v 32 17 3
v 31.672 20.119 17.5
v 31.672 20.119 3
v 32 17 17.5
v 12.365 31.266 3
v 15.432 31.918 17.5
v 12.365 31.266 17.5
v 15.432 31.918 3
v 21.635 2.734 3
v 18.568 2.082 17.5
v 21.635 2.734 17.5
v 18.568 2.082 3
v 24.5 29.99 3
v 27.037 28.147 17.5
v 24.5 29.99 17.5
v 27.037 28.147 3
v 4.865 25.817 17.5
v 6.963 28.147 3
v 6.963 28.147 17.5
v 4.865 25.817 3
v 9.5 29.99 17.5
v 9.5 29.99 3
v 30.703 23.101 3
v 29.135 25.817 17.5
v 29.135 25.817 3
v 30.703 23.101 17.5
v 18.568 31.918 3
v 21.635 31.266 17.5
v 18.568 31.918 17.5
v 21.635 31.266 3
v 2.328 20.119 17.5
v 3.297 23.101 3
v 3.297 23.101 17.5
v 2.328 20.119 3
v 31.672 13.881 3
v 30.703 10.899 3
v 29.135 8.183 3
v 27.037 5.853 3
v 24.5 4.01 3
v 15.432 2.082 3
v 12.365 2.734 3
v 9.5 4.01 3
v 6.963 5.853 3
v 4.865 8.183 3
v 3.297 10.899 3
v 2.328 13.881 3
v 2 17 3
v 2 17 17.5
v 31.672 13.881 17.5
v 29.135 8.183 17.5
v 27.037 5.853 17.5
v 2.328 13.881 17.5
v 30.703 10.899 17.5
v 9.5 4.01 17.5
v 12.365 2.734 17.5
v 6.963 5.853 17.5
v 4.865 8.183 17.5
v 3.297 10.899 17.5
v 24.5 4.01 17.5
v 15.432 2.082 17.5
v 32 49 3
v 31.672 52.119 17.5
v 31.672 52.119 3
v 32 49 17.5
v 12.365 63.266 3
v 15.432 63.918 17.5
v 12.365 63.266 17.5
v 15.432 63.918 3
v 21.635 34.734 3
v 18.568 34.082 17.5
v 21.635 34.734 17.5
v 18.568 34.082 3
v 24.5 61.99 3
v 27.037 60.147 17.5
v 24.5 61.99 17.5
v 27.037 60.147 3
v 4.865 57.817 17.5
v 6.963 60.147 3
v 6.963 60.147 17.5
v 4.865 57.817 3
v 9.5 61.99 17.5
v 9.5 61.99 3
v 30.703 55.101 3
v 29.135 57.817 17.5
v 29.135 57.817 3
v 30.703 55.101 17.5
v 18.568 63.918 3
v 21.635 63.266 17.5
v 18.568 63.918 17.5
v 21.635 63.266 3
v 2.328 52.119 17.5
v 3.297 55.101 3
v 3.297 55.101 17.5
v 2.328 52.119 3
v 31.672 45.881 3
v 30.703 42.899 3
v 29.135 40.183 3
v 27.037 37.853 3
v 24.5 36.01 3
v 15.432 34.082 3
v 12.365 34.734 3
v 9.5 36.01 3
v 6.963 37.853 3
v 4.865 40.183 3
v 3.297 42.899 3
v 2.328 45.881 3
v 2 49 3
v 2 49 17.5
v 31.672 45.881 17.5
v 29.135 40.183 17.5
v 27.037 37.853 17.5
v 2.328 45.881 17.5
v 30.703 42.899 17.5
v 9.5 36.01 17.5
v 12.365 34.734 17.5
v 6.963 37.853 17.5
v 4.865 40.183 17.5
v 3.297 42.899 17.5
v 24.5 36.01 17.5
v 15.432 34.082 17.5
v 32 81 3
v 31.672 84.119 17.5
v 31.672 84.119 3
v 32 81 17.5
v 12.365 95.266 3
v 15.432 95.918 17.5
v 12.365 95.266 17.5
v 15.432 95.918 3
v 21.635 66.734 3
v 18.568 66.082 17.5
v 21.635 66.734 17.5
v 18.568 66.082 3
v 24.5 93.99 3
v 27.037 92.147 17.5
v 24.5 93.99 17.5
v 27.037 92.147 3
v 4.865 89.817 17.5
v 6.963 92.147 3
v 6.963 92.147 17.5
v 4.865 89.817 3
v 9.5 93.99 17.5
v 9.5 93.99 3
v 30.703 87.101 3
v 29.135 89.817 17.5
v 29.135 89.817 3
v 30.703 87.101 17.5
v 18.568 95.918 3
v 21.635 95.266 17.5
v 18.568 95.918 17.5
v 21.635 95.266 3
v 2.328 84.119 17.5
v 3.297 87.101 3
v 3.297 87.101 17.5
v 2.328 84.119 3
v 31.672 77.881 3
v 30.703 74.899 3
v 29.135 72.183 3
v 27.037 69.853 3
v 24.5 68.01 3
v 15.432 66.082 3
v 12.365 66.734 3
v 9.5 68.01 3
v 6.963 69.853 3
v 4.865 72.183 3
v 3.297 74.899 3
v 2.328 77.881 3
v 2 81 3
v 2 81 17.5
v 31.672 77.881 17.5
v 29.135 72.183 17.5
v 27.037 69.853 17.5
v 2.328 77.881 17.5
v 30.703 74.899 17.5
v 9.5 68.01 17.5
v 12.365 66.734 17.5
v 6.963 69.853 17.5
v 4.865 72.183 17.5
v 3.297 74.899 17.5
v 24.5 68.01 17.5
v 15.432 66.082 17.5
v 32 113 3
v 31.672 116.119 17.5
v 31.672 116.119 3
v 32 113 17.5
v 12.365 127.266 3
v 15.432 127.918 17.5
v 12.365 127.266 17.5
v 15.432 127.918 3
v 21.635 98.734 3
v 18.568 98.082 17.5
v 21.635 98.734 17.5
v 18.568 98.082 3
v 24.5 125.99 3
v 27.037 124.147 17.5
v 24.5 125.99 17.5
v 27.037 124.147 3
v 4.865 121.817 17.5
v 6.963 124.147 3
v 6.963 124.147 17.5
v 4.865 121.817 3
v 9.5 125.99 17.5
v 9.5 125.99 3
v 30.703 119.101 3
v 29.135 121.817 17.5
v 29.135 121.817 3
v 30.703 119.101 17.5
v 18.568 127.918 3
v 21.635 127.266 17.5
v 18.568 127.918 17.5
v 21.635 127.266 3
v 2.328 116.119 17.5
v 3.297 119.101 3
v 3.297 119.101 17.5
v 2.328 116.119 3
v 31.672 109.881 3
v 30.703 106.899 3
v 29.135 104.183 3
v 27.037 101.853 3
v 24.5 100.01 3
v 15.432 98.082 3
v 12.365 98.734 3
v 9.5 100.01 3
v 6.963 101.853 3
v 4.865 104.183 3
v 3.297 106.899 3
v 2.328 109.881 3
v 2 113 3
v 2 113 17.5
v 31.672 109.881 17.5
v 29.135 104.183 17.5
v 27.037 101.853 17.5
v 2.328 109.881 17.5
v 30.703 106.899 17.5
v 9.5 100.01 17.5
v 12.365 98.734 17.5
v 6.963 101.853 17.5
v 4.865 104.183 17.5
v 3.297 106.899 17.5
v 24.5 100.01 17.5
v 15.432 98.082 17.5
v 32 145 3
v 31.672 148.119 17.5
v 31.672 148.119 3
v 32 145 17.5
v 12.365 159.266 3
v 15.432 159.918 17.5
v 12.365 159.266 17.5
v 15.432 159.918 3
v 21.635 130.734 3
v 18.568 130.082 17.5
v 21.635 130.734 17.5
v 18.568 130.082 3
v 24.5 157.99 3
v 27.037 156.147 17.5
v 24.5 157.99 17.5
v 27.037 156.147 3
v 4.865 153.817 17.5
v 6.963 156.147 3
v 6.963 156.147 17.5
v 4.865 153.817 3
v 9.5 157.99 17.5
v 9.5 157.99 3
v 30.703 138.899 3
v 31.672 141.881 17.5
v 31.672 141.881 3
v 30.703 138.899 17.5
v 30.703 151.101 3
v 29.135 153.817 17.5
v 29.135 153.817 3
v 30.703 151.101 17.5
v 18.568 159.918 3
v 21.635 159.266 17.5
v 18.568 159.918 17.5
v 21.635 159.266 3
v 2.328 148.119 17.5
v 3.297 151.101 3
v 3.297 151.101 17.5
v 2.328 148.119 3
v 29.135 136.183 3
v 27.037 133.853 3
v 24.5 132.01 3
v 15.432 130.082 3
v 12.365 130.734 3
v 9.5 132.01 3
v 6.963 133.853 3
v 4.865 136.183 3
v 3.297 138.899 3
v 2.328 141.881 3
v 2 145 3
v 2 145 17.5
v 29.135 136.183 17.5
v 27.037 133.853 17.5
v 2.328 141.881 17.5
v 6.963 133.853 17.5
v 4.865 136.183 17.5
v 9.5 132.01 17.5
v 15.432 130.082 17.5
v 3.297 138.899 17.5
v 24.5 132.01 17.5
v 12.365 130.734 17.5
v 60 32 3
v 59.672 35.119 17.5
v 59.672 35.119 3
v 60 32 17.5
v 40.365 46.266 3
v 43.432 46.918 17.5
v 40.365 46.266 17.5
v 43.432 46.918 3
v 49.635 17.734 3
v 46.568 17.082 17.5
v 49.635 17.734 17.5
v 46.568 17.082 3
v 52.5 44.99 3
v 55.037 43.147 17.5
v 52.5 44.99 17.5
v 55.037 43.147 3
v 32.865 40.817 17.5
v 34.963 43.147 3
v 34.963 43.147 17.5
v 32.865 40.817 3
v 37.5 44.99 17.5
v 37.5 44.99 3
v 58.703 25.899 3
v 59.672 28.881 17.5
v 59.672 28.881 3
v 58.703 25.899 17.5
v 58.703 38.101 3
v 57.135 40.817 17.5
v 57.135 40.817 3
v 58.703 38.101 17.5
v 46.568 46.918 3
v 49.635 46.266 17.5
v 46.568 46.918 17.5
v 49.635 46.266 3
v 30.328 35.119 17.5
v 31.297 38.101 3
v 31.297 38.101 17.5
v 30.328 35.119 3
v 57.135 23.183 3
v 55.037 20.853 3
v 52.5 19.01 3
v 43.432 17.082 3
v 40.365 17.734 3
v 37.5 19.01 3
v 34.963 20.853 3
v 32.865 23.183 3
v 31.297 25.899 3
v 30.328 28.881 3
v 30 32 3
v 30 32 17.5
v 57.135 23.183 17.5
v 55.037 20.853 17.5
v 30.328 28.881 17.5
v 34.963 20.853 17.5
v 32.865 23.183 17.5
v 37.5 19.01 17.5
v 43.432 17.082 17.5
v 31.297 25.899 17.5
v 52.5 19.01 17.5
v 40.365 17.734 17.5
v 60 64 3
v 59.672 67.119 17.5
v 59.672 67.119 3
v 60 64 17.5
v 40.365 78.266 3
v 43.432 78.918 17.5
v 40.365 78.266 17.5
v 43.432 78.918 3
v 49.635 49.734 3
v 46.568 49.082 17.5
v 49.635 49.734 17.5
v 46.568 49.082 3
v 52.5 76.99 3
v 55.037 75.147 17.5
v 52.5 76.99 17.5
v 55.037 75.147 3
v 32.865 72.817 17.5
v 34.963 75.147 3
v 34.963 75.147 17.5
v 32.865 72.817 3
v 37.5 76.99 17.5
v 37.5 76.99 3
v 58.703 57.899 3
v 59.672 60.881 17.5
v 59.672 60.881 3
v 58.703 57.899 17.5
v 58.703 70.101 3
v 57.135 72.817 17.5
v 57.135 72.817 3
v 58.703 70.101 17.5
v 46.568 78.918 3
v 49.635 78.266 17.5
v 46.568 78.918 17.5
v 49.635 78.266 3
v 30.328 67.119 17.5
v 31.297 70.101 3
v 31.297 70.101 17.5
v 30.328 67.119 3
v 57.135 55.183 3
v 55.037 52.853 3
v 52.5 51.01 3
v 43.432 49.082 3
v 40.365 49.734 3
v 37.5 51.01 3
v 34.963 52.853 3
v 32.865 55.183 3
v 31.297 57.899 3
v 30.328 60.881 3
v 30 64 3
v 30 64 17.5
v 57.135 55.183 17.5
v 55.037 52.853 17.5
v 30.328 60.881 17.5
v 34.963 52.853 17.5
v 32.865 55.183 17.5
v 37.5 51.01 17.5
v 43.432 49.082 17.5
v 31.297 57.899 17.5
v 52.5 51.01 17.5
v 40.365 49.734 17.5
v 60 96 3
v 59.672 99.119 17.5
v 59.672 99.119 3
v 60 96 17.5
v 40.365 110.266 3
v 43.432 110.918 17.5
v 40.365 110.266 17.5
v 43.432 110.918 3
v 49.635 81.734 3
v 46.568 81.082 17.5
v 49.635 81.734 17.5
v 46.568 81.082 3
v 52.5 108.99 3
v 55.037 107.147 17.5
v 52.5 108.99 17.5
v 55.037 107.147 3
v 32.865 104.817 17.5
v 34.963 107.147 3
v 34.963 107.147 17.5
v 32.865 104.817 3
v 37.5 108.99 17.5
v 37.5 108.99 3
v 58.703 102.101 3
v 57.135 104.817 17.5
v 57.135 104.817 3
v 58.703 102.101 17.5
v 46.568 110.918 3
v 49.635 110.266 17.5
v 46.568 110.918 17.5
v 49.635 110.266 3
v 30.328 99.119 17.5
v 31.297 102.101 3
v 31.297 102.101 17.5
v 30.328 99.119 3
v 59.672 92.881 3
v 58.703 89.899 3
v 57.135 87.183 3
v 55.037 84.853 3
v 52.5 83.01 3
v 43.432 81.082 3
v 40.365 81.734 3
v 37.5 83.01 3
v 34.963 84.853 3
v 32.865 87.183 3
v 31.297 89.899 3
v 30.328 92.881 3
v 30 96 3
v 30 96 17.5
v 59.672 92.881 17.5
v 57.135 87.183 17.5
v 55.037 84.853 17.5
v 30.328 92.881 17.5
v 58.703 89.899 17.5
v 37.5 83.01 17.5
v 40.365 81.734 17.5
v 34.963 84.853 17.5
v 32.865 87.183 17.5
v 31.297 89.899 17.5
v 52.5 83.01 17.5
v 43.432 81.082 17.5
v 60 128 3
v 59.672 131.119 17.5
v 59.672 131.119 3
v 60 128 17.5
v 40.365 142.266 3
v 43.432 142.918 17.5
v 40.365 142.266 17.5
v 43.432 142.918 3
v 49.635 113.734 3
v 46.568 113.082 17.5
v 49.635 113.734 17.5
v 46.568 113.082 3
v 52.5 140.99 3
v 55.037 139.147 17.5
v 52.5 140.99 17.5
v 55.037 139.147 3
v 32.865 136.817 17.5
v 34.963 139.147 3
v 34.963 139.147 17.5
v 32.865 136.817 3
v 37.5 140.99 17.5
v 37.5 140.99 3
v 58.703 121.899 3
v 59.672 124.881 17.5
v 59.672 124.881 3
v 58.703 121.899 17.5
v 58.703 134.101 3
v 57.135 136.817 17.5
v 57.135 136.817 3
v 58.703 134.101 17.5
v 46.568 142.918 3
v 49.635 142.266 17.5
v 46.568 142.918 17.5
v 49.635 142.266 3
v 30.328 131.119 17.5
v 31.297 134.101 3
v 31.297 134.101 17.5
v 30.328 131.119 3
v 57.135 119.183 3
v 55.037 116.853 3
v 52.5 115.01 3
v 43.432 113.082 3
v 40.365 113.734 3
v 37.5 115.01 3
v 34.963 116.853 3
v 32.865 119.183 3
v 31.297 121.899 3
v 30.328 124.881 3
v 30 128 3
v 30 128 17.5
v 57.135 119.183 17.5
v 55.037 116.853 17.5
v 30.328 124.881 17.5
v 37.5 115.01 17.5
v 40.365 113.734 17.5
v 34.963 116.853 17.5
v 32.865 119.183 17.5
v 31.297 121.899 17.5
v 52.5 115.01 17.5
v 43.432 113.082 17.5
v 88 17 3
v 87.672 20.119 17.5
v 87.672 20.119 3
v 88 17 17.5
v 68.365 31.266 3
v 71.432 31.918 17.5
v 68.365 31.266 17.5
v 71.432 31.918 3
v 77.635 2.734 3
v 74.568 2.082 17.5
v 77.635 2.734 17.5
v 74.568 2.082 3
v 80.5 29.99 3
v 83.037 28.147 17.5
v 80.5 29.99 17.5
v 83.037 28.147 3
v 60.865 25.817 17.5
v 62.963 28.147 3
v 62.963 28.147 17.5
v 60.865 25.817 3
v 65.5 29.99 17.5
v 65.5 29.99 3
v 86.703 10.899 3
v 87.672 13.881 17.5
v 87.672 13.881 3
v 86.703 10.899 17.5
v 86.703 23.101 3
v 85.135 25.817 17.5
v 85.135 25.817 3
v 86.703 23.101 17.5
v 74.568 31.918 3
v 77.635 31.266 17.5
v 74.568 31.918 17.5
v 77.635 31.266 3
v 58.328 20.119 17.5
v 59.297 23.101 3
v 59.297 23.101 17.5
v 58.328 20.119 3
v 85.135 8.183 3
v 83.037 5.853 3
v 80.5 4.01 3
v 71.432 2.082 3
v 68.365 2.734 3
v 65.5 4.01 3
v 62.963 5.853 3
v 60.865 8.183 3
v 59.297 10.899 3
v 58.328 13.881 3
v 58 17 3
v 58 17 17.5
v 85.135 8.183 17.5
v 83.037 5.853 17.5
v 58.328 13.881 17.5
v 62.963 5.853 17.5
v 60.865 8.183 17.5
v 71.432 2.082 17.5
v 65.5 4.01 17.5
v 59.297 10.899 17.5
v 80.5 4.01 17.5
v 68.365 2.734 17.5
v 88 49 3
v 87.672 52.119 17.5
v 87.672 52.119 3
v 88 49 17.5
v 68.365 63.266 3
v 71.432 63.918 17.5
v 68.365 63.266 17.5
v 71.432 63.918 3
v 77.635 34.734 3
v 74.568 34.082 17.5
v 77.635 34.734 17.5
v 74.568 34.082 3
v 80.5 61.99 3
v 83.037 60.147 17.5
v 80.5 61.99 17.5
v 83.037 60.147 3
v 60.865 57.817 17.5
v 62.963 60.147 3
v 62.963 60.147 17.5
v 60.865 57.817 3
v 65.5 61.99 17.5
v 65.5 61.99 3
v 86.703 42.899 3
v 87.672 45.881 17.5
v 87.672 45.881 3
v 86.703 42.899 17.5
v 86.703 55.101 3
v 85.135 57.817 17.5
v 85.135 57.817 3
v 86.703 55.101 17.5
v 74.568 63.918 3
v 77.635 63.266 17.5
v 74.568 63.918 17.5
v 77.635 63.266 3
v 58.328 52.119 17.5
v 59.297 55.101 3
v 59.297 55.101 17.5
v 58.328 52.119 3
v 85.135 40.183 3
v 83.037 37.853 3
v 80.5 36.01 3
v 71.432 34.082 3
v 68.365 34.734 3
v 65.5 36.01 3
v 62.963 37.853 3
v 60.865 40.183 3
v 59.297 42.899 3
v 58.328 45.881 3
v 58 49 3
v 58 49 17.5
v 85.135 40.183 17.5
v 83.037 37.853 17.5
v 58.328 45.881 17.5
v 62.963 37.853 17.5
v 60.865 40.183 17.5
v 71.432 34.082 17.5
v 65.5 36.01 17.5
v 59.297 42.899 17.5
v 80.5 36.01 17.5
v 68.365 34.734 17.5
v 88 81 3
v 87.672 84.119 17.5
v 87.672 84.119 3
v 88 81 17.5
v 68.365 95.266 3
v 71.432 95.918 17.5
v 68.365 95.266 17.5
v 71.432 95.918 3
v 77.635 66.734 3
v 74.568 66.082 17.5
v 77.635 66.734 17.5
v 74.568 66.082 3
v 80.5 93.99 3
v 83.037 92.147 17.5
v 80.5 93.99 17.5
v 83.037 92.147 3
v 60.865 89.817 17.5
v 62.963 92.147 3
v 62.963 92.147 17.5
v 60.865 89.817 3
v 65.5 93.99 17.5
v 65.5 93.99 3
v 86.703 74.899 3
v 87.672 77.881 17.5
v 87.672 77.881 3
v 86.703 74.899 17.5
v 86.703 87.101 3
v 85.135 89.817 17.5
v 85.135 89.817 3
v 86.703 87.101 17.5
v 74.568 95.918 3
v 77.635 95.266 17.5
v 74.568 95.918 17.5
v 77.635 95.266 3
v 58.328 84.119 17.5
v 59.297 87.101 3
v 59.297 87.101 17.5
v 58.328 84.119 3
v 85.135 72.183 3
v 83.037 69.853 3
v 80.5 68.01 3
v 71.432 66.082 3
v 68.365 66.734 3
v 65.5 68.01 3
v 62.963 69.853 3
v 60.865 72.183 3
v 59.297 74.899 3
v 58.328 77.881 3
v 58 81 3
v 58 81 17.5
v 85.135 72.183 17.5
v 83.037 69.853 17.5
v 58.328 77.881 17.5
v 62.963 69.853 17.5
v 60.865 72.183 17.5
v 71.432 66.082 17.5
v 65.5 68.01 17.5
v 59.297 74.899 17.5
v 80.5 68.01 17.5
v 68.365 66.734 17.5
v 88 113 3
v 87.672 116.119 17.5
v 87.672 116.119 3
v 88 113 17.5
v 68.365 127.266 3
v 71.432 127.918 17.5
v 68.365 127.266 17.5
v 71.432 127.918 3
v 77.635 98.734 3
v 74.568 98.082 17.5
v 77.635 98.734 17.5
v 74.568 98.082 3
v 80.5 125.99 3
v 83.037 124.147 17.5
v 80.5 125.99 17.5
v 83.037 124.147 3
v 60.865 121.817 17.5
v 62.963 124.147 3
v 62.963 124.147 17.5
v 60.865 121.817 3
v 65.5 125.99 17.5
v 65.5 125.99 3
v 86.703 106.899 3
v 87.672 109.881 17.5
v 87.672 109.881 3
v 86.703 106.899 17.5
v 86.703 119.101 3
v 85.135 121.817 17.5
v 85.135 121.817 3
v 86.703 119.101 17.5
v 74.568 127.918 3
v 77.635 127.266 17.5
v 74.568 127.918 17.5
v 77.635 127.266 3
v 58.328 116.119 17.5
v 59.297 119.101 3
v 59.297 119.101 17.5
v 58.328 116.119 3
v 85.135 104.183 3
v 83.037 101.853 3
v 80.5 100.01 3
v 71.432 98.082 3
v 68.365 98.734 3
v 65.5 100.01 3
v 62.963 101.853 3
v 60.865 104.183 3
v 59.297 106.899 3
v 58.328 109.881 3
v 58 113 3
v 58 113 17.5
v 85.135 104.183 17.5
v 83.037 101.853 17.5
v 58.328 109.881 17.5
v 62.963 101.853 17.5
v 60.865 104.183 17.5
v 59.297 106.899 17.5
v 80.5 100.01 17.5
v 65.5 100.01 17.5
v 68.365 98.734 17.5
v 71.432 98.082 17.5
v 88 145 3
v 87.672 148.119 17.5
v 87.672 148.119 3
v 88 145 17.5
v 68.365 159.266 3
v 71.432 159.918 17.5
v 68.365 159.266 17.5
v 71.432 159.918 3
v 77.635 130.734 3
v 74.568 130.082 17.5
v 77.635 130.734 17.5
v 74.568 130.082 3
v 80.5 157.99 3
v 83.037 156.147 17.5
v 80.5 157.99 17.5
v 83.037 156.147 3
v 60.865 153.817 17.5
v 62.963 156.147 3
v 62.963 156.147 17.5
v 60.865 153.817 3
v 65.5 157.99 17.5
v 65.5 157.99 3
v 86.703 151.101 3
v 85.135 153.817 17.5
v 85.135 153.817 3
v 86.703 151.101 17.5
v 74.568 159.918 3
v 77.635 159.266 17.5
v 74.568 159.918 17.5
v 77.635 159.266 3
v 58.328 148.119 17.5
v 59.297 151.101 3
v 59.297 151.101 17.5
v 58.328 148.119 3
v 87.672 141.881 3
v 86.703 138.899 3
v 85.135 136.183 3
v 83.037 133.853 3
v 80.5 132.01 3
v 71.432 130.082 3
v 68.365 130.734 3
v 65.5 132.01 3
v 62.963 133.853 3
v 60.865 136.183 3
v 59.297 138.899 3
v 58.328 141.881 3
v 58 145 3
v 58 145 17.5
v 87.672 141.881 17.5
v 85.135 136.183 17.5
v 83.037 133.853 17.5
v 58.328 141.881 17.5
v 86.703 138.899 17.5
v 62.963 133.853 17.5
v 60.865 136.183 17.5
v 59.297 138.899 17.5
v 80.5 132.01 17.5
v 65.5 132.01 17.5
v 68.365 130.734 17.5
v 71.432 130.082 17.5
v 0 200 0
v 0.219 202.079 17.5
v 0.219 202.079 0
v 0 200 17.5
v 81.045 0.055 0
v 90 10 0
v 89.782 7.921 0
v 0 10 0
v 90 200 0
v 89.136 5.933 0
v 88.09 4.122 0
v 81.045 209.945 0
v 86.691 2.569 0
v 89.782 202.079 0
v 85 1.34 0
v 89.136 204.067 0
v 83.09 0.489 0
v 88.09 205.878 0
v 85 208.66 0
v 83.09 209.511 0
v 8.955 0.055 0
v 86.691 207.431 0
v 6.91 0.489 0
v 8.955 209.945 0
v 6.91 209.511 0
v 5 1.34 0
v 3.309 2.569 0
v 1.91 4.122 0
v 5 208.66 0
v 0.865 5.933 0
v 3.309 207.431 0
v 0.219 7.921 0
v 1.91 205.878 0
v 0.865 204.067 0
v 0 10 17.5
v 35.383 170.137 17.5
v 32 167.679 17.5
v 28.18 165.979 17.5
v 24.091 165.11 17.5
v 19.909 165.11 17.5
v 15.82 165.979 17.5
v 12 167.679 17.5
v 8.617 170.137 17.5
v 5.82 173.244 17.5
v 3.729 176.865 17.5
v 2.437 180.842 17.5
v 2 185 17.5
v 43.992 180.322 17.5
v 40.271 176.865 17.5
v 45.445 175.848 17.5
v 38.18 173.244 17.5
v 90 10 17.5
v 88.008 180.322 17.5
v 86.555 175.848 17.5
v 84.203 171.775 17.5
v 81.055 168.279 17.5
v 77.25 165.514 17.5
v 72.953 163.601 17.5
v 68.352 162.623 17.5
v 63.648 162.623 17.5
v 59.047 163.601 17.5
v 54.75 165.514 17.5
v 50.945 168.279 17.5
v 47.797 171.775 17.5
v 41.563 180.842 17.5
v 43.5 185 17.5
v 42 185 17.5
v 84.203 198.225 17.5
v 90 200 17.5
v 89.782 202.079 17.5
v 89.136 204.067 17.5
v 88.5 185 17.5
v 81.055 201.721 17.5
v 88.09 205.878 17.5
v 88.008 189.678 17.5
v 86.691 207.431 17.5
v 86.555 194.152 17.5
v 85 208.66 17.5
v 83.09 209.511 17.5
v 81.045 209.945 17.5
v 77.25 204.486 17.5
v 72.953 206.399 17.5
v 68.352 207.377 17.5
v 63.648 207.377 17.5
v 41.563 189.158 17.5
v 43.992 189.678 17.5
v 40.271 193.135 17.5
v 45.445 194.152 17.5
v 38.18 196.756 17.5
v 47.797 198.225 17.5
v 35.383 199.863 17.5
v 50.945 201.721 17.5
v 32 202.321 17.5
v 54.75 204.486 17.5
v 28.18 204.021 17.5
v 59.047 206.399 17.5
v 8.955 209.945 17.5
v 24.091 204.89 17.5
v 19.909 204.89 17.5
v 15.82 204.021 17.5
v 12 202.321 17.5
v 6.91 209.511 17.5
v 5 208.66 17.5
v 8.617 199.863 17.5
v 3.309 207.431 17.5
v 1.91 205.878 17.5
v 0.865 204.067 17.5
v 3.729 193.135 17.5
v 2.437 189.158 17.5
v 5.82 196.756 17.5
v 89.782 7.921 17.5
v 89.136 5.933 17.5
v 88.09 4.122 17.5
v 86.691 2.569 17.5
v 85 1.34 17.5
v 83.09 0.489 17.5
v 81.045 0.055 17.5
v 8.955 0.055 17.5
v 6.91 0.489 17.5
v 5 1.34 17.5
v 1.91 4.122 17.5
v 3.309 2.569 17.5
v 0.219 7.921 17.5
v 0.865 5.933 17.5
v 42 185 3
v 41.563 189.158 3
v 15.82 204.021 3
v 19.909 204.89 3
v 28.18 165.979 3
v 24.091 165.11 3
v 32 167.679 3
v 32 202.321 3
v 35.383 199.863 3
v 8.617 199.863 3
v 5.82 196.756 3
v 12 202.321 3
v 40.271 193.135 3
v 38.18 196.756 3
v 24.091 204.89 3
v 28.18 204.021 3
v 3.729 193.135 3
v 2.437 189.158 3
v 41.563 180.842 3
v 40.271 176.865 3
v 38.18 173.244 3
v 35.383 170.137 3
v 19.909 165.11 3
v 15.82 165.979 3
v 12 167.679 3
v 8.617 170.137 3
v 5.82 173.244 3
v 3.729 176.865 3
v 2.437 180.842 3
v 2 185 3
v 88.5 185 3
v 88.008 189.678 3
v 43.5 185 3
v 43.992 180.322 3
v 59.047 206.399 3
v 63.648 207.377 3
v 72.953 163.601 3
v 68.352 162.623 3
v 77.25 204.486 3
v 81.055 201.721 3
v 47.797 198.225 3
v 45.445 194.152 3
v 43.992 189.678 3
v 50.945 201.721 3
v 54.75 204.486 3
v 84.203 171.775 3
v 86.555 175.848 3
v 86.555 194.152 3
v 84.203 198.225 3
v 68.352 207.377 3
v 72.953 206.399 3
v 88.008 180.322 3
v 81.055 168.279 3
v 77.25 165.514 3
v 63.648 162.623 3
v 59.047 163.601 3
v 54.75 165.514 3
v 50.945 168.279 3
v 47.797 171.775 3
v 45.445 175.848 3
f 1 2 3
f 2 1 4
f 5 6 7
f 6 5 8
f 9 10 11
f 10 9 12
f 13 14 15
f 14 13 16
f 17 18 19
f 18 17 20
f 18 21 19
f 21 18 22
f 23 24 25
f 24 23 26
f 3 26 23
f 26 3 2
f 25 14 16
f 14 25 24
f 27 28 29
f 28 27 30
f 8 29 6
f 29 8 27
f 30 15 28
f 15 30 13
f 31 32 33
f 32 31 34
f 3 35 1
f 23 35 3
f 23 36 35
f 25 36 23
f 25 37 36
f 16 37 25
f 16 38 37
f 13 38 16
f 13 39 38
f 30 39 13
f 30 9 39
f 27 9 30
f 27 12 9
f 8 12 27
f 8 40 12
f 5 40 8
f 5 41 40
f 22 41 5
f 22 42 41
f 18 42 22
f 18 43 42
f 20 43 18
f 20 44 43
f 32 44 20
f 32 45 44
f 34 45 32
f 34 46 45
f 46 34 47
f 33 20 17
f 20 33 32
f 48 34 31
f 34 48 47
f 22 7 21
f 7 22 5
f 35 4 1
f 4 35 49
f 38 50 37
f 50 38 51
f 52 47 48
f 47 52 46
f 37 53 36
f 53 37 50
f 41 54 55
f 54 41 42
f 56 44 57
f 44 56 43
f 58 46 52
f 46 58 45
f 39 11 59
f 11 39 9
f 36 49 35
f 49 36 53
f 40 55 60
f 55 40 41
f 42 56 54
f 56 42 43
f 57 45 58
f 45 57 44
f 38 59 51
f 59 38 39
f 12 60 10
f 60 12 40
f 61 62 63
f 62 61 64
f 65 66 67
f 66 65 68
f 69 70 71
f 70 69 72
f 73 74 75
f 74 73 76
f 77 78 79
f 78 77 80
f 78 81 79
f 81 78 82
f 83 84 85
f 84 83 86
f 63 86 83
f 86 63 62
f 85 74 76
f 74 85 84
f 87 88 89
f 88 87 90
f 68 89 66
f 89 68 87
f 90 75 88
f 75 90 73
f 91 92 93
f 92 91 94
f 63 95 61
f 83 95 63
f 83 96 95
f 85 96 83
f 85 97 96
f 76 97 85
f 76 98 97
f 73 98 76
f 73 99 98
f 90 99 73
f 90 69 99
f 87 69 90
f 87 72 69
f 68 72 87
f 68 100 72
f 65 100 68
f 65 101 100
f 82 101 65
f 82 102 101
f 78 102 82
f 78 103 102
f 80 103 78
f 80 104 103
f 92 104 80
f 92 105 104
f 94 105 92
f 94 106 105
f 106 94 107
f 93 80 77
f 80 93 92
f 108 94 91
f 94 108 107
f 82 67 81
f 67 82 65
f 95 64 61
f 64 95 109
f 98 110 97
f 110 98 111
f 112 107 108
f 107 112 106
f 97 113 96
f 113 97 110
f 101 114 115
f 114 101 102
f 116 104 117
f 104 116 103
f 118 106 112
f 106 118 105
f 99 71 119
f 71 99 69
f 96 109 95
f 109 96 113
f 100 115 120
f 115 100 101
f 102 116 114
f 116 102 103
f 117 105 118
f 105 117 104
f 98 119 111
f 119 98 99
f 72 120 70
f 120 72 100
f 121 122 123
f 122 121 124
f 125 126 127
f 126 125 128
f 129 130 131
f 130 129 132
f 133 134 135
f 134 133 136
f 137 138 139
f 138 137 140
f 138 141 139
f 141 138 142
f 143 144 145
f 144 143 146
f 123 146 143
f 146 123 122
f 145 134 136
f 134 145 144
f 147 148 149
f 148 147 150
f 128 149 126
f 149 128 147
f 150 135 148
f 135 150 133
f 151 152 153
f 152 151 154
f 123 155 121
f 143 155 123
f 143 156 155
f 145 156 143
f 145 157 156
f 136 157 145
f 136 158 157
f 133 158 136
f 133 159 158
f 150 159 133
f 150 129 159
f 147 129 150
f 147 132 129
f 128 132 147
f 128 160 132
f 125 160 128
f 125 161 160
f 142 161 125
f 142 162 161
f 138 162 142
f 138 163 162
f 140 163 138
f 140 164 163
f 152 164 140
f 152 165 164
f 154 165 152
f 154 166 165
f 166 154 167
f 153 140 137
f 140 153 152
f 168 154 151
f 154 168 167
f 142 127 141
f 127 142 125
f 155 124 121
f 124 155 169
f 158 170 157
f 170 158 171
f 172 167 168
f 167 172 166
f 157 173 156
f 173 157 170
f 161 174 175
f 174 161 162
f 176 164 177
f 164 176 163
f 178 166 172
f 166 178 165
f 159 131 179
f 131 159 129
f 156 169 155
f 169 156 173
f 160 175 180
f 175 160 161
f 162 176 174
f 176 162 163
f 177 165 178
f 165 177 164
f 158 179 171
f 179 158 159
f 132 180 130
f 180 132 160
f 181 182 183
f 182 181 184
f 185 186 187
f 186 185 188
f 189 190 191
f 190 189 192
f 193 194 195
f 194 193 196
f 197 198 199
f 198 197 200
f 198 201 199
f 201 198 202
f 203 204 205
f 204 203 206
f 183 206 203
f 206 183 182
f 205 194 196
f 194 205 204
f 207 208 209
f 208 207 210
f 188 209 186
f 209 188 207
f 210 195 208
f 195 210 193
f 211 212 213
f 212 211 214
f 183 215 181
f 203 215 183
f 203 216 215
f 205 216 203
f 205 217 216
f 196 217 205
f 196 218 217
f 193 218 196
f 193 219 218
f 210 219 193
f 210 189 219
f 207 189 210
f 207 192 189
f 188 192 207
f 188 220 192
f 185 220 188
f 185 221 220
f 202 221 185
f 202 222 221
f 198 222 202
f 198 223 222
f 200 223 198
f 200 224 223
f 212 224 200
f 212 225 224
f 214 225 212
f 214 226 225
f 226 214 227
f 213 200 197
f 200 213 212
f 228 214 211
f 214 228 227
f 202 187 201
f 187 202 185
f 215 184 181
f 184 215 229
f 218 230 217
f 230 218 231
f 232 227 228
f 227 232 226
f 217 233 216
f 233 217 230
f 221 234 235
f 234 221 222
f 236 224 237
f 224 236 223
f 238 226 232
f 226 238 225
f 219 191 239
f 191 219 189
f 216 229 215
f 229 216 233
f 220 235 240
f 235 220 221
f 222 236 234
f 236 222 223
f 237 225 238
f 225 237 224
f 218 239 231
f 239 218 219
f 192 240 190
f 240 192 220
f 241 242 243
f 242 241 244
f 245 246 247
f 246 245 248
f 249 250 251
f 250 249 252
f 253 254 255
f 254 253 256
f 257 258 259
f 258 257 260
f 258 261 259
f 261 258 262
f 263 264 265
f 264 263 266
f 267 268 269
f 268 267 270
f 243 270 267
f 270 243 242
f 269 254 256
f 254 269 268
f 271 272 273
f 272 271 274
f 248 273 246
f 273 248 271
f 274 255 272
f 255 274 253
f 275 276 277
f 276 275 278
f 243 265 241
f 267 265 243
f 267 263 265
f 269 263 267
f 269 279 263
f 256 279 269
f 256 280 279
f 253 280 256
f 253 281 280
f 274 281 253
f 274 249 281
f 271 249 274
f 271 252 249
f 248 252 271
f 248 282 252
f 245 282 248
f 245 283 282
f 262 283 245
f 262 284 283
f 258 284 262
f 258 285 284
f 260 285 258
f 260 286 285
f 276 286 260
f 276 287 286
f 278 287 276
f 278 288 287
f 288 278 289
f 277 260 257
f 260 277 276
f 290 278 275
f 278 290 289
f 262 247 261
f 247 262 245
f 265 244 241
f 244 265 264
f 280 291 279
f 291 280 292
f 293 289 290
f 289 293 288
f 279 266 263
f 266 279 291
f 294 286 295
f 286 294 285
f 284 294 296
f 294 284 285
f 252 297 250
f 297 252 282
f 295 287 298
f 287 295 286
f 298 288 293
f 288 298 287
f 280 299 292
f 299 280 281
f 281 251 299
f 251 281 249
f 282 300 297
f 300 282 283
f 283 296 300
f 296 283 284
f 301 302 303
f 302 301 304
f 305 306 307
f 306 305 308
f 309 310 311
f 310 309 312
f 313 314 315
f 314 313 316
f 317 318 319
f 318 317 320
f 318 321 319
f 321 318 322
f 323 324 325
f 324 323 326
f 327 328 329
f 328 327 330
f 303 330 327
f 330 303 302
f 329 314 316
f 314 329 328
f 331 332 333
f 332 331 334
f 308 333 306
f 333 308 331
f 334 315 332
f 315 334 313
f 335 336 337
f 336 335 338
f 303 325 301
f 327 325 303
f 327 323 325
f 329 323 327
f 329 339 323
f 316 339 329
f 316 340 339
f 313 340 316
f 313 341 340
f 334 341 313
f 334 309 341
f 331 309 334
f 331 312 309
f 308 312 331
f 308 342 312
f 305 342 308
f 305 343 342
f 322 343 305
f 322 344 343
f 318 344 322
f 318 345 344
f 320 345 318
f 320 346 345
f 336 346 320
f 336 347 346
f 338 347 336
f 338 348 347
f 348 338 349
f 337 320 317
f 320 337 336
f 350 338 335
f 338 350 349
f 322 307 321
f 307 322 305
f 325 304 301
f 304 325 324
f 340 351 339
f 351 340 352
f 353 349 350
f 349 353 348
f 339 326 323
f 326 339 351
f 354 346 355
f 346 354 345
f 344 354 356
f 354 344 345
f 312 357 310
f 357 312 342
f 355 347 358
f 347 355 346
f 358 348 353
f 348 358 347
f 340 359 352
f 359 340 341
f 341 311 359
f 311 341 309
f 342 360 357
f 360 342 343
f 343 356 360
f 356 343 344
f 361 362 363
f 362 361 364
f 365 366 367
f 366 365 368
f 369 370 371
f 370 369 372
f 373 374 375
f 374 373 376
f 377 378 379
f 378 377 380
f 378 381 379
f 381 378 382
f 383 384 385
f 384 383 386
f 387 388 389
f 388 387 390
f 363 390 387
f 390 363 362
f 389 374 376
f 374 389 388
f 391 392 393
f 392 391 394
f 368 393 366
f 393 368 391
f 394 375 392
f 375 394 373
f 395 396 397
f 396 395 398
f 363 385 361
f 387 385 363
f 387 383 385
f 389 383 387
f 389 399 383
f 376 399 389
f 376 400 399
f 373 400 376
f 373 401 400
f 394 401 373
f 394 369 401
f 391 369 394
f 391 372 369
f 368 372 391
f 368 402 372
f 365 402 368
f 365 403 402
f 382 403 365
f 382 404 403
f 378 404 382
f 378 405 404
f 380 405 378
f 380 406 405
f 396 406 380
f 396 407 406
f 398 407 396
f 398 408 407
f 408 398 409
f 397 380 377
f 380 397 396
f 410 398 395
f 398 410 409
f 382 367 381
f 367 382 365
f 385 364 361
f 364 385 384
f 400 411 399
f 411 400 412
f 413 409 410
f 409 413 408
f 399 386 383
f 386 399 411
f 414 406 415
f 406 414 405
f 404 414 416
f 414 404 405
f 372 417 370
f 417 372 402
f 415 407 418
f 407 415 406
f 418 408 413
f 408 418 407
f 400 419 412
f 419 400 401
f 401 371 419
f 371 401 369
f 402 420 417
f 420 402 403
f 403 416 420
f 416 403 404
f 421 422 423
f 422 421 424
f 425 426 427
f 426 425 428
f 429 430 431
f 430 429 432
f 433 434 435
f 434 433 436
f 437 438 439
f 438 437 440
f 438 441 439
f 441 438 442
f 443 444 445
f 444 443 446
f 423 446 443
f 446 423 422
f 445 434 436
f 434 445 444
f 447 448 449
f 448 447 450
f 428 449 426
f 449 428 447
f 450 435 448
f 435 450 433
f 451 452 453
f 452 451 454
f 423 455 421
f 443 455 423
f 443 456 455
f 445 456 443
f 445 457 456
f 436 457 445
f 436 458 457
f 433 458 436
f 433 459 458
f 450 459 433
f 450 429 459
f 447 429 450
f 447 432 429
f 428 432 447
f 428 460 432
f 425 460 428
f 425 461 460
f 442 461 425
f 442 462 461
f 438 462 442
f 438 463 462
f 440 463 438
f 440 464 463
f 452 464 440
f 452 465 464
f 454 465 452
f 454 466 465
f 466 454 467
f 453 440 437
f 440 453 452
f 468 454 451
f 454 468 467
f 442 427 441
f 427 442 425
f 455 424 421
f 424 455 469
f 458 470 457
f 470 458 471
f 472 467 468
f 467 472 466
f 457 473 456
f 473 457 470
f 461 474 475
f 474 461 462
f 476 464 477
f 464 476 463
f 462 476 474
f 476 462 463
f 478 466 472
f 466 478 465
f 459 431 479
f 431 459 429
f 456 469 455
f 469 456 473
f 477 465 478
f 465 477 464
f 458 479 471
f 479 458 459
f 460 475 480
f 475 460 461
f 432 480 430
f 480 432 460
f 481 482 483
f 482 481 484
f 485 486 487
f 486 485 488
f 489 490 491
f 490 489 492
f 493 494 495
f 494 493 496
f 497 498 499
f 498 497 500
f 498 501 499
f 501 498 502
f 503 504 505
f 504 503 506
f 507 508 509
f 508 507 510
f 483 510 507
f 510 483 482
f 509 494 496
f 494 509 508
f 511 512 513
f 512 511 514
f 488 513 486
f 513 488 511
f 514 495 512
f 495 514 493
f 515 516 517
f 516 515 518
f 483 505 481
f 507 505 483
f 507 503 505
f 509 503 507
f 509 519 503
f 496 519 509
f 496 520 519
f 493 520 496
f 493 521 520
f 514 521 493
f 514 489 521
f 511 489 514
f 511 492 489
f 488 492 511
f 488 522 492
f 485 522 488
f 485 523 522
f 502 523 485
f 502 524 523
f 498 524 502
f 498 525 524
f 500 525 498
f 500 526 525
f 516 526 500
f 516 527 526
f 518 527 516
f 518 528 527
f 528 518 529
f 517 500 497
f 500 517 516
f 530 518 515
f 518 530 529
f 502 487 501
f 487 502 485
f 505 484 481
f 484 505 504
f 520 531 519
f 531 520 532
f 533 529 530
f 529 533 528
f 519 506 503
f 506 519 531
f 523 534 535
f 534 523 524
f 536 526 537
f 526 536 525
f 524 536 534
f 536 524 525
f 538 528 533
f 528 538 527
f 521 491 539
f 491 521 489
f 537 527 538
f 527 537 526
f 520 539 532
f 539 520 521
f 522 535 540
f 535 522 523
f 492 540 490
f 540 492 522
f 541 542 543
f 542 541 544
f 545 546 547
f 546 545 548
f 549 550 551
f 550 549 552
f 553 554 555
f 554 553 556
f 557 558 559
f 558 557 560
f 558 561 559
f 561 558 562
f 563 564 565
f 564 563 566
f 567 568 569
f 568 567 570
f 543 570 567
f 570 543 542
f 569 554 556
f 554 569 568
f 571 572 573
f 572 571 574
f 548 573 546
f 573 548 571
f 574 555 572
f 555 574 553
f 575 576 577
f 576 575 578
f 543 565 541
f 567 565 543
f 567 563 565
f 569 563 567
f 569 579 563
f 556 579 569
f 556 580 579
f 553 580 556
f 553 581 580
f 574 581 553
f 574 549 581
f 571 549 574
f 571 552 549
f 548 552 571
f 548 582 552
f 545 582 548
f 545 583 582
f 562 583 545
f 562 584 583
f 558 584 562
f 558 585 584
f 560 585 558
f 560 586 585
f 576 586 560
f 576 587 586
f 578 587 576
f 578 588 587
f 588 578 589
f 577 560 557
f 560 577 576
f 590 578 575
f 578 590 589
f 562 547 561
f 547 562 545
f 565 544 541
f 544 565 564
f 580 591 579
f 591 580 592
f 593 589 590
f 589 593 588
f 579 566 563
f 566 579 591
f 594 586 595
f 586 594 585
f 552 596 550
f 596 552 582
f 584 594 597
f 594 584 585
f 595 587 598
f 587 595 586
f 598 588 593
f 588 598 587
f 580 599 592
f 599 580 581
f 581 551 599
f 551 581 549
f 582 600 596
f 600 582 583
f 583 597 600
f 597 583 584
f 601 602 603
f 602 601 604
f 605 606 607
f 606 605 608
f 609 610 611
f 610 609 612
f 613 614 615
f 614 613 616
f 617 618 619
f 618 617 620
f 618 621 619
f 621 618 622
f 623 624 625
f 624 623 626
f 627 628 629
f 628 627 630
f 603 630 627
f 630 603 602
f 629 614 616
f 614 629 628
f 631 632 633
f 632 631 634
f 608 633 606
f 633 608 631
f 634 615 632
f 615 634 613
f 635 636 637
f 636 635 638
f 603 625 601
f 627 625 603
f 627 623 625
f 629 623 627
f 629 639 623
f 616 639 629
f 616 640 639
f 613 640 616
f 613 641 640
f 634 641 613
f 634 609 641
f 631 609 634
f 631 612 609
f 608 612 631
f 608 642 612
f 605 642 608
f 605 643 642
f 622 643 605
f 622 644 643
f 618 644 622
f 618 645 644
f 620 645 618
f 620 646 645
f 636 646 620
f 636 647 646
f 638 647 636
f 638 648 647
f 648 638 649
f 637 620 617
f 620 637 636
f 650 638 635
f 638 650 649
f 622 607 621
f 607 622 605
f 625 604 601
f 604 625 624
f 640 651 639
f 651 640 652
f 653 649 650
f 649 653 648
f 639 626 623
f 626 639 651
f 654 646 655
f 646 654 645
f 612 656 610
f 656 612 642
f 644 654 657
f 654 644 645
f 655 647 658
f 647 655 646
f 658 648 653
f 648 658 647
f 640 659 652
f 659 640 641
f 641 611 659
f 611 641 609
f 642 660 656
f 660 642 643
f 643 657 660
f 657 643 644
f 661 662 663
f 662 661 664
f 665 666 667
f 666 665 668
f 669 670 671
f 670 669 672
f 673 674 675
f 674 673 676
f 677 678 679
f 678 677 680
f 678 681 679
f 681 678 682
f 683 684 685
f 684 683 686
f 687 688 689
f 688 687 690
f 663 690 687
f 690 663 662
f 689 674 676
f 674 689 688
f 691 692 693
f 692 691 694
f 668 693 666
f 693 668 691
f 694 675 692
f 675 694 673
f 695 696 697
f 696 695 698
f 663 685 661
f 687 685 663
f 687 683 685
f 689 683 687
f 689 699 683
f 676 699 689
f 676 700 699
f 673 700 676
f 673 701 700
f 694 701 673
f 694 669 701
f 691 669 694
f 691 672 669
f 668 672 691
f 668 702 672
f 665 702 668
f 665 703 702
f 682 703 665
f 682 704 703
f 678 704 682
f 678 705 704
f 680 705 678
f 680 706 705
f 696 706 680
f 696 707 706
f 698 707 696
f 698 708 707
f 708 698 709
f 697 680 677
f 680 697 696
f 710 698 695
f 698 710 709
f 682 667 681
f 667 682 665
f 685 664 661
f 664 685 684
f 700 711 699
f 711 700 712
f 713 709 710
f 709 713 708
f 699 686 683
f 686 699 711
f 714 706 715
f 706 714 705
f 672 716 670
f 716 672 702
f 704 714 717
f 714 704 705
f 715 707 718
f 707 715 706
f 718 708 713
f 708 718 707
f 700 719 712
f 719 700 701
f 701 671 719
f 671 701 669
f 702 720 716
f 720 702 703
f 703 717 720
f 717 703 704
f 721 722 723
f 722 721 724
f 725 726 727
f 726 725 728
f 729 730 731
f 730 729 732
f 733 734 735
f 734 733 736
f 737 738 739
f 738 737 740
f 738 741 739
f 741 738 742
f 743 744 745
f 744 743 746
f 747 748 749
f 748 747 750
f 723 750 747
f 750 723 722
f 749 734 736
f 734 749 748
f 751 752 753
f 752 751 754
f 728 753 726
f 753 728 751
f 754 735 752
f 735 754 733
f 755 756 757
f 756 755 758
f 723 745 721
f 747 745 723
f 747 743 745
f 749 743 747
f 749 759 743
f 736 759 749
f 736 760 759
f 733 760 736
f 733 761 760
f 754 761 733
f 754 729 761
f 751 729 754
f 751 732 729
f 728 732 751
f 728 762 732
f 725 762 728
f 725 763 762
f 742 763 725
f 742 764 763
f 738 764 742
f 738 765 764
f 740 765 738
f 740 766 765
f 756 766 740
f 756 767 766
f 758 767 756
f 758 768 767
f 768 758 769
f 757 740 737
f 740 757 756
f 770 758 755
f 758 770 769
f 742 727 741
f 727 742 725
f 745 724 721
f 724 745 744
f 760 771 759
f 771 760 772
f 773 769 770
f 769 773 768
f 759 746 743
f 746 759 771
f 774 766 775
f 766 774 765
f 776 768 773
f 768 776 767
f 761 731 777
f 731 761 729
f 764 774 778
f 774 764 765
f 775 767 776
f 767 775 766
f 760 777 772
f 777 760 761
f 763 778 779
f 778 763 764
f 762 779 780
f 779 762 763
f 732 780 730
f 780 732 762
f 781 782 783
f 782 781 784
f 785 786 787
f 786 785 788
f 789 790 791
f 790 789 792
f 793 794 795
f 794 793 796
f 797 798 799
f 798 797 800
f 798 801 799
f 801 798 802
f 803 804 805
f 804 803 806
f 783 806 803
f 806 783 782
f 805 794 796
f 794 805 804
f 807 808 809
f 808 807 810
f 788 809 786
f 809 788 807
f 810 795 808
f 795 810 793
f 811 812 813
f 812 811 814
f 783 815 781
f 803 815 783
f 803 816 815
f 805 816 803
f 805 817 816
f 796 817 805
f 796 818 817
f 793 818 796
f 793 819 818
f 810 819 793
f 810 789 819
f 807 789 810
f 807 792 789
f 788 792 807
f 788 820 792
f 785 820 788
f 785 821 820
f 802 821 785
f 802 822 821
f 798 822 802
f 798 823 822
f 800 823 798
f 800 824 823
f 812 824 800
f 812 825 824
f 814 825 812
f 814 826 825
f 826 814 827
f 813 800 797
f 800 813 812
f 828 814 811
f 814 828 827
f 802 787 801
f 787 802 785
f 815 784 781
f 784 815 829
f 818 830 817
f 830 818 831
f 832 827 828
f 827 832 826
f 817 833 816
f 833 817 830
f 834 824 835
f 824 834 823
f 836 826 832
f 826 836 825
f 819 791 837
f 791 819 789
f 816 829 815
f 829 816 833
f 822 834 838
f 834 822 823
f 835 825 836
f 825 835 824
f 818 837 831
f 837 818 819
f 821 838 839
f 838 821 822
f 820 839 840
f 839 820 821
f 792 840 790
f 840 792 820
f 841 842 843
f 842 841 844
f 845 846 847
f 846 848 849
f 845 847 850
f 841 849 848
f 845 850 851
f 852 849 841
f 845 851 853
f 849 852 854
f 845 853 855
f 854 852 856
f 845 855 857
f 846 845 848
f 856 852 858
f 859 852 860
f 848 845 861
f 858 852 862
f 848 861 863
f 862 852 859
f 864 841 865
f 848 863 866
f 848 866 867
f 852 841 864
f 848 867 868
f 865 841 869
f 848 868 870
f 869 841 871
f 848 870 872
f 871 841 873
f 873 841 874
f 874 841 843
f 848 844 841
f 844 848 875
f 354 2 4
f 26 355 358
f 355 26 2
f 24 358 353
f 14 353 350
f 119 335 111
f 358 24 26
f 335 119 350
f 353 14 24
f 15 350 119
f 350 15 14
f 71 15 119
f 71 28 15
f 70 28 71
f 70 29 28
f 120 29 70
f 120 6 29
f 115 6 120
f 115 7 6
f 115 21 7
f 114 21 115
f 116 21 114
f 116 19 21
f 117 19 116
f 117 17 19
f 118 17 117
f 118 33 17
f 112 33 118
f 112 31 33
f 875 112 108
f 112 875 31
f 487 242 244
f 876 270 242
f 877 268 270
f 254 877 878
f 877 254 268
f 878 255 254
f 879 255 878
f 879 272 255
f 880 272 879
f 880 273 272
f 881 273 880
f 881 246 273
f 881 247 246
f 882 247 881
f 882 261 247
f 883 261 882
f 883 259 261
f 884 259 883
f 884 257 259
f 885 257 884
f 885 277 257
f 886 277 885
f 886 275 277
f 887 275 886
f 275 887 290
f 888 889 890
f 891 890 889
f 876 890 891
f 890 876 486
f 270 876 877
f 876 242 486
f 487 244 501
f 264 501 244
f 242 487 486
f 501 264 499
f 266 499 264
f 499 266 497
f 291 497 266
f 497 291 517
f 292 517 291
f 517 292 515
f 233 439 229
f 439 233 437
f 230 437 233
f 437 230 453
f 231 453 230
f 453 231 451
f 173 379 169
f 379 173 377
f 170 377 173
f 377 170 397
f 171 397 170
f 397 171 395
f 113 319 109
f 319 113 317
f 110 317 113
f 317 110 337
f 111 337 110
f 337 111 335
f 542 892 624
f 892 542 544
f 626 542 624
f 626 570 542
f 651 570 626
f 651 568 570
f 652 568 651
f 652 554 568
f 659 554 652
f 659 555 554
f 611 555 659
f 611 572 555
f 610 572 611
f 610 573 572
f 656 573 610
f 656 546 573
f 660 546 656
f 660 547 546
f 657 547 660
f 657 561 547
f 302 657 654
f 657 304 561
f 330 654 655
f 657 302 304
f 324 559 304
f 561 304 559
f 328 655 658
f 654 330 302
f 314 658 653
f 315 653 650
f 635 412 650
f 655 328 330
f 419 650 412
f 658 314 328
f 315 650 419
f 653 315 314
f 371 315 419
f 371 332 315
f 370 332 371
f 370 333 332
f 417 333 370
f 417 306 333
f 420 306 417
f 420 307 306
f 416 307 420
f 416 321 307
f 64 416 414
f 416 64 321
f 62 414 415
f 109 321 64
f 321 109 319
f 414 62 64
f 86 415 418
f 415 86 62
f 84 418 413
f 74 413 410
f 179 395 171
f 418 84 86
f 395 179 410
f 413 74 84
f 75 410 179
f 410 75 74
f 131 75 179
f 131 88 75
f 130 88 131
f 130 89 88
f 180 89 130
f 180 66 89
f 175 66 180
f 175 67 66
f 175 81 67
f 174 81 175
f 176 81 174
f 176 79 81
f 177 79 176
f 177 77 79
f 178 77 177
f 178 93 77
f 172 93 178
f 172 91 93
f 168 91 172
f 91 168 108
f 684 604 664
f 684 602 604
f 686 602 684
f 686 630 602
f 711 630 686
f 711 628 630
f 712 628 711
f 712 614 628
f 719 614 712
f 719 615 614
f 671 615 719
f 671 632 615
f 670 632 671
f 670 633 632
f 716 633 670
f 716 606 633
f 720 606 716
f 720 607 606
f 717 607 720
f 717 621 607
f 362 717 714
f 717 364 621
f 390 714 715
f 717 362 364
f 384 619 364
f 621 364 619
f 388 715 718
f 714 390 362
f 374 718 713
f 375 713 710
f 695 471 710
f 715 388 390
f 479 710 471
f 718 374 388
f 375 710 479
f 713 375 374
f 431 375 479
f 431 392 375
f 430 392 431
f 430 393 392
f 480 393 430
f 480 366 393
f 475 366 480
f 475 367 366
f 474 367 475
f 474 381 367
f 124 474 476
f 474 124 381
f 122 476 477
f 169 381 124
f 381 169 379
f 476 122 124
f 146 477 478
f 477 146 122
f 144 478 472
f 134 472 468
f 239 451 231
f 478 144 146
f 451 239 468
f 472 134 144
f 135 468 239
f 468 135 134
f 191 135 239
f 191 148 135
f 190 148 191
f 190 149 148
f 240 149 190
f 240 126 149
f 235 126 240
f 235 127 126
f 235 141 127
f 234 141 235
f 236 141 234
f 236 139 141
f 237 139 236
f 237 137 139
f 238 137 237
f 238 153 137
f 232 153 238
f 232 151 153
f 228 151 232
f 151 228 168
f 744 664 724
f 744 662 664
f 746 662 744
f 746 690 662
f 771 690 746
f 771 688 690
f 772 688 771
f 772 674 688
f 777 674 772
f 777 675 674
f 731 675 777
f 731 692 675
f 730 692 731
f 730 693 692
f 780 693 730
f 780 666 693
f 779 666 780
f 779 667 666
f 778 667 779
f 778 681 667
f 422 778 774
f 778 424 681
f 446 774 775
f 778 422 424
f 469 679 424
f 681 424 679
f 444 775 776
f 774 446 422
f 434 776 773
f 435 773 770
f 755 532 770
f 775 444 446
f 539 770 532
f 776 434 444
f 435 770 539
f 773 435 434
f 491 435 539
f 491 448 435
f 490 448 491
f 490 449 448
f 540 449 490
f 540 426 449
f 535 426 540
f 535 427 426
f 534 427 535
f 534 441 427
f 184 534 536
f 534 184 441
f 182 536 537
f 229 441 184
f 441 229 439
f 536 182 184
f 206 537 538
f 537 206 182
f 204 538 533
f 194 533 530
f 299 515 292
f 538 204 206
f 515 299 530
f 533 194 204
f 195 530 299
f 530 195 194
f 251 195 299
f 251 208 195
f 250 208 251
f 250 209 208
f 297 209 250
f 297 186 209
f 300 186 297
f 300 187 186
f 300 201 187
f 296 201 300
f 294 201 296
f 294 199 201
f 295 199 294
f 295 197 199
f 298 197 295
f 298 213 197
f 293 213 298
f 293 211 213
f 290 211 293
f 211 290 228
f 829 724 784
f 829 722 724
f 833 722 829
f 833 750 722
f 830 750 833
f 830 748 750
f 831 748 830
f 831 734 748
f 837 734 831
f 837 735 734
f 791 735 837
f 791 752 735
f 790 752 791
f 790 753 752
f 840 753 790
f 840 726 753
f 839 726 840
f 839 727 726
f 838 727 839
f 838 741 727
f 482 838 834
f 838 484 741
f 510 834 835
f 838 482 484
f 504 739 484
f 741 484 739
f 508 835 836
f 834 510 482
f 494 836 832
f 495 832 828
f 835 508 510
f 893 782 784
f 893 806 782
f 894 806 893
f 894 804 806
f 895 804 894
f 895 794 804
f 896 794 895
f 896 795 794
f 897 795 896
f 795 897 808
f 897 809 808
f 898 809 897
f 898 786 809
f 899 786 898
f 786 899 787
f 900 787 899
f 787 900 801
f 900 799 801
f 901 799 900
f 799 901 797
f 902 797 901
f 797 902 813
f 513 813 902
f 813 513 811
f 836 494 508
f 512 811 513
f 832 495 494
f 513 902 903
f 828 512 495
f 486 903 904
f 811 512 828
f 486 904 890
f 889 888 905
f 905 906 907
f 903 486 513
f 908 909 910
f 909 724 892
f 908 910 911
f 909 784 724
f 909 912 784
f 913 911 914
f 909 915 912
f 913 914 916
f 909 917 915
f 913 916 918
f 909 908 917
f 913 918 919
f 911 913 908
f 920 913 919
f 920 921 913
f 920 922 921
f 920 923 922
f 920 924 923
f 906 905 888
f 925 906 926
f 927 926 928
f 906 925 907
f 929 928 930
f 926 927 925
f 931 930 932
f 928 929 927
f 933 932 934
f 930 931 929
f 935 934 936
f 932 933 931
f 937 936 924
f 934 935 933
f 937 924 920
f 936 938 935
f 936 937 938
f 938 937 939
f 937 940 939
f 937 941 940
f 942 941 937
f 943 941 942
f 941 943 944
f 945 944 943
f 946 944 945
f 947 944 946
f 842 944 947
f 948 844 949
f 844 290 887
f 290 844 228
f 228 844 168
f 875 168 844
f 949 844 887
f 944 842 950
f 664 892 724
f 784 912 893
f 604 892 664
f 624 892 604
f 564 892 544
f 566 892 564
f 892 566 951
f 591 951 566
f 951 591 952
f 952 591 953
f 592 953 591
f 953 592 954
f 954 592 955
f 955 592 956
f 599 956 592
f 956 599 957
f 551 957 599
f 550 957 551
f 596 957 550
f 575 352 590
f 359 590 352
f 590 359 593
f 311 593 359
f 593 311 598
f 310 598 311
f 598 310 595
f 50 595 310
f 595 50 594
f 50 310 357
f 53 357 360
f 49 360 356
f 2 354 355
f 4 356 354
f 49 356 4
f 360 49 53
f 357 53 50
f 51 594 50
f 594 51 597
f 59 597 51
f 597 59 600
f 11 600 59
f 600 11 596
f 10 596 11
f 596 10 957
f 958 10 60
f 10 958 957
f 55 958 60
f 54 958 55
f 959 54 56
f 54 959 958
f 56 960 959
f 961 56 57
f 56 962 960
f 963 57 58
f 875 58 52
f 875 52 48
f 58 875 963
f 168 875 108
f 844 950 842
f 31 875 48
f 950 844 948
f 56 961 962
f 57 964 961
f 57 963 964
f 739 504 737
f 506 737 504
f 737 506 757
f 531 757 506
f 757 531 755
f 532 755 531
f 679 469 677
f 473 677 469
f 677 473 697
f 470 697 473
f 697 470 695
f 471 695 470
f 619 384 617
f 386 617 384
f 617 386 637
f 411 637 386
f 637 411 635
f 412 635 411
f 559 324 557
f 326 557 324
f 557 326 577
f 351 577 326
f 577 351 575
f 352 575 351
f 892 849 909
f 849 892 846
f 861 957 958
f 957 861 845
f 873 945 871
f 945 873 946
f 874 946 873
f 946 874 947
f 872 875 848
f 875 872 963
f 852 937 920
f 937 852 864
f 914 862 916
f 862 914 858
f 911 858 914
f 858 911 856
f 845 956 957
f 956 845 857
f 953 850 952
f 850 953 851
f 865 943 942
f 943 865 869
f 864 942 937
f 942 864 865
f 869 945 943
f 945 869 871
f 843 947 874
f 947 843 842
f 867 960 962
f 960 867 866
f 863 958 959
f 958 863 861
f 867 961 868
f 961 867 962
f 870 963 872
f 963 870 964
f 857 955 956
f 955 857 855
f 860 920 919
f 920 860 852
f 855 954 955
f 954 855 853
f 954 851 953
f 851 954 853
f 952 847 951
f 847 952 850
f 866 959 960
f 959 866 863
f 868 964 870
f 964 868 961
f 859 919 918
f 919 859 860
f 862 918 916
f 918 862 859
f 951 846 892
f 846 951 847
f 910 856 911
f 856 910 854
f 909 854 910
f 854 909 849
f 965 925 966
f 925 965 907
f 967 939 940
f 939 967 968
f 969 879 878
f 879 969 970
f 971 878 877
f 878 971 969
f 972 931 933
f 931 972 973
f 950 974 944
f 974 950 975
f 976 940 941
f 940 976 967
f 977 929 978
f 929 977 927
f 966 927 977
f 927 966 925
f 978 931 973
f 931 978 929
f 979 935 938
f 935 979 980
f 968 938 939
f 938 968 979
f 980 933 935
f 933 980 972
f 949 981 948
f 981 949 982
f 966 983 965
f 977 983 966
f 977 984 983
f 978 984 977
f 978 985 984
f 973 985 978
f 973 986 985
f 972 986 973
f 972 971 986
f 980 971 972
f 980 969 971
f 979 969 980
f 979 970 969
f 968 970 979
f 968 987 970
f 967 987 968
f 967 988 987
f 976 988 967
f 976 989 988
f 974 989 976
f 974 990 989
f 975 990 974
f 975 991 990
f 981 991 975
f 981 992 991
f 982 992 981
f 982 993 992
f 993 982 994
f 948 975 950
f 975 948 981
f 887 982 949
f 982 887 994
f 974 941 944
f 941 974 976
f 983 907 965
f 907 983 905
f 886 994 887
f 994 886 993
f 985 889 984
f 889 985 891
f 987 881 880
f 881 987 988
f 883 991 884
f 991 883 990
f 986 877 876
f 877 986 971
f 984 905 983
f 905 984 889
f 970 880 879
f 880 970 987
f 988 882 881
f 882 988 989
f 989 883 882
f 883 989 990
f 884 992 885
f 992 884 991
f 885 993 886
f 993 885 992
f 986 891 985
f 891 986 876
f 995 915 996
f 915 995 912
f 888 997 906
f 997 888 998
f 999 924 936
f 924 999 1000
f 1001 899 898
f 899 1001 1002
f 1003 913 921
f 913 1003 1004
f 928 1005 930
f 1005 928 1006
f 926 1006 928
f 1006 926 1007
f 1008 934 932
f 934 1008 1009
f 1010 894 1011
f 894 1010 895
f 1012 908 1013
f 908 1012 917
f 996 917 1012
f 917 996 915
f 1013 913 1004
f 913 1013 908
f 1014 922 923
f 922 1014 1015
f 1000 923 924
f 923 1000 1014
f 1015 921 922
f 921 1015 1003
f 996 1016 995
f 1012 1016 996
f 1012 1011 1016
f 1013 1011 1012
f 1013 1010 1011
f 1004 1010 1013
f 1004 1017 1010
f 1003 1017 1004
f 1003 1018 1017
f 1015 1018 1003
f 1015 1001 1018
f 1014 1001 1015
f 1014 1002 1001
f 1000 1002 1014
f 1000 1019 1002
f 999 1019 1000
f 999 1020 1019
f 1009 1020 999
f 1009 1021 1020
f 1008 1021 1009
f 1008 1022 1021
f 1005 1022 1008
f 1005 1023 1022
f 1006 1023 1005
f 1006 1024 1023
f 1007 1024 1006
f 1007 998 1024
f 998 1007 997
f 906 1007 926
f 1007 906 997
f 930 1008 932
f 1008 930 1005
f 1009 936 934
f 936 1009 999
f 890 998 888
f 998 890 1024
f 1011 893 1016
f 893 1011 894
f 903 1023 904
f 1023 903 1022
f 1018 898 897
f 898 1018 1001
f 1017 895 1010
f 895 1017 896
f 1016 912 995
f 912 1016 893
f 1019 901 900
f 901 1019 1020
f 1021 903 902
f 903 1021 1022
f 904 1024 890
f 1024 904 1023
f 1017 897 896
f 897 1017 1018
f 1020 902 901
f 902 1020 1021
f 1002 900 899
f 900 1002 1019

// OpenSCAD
platformHeight = 17.5;
spacerSize = 12;
spacerGap = 4;
spacerLength = 20;


difference(){
    platform();
    translate([22, 185, 3]) 
        bottle(20);
    translate([66, 185, 3]) 
        bottle(22.5);
    union() {
        xOffset = -11;
        yOffset = -15;
        for(x = [ 1 : 3]) {
            for(y = [1 : 5]) {
                xVal = xOffset + (x * 28);
                yVal = yOffset + (y * 32);
                if (x == 2) {
                    if (y < 5) {
                        translate([xVal,yVal + 15, 3])
                            bottle(15);
                    }
                } else {
                    translate([xVal ,yVal, 3])
                        bottle(15);
                }
            }
        }
    }
}


module bottle(radius){
    cylinder(r=radius, h=60, center=false);
}


module platform() {
    hull() {
        translate([10, 10, 0])
            cylinder(r=10, h=platformHeight);
        translate([80, 200, 0])
            cylinder(r=10, h=platformHeight);
        translate([80, 10, 0])        
            cylinder(r=10, h=platformHeight);
        translate([10, 200, 0])        
            cylinder(r=10, h=platformHeight);
    }

    //cube(size=[90, 210, platformHeight], center=false);    
}
